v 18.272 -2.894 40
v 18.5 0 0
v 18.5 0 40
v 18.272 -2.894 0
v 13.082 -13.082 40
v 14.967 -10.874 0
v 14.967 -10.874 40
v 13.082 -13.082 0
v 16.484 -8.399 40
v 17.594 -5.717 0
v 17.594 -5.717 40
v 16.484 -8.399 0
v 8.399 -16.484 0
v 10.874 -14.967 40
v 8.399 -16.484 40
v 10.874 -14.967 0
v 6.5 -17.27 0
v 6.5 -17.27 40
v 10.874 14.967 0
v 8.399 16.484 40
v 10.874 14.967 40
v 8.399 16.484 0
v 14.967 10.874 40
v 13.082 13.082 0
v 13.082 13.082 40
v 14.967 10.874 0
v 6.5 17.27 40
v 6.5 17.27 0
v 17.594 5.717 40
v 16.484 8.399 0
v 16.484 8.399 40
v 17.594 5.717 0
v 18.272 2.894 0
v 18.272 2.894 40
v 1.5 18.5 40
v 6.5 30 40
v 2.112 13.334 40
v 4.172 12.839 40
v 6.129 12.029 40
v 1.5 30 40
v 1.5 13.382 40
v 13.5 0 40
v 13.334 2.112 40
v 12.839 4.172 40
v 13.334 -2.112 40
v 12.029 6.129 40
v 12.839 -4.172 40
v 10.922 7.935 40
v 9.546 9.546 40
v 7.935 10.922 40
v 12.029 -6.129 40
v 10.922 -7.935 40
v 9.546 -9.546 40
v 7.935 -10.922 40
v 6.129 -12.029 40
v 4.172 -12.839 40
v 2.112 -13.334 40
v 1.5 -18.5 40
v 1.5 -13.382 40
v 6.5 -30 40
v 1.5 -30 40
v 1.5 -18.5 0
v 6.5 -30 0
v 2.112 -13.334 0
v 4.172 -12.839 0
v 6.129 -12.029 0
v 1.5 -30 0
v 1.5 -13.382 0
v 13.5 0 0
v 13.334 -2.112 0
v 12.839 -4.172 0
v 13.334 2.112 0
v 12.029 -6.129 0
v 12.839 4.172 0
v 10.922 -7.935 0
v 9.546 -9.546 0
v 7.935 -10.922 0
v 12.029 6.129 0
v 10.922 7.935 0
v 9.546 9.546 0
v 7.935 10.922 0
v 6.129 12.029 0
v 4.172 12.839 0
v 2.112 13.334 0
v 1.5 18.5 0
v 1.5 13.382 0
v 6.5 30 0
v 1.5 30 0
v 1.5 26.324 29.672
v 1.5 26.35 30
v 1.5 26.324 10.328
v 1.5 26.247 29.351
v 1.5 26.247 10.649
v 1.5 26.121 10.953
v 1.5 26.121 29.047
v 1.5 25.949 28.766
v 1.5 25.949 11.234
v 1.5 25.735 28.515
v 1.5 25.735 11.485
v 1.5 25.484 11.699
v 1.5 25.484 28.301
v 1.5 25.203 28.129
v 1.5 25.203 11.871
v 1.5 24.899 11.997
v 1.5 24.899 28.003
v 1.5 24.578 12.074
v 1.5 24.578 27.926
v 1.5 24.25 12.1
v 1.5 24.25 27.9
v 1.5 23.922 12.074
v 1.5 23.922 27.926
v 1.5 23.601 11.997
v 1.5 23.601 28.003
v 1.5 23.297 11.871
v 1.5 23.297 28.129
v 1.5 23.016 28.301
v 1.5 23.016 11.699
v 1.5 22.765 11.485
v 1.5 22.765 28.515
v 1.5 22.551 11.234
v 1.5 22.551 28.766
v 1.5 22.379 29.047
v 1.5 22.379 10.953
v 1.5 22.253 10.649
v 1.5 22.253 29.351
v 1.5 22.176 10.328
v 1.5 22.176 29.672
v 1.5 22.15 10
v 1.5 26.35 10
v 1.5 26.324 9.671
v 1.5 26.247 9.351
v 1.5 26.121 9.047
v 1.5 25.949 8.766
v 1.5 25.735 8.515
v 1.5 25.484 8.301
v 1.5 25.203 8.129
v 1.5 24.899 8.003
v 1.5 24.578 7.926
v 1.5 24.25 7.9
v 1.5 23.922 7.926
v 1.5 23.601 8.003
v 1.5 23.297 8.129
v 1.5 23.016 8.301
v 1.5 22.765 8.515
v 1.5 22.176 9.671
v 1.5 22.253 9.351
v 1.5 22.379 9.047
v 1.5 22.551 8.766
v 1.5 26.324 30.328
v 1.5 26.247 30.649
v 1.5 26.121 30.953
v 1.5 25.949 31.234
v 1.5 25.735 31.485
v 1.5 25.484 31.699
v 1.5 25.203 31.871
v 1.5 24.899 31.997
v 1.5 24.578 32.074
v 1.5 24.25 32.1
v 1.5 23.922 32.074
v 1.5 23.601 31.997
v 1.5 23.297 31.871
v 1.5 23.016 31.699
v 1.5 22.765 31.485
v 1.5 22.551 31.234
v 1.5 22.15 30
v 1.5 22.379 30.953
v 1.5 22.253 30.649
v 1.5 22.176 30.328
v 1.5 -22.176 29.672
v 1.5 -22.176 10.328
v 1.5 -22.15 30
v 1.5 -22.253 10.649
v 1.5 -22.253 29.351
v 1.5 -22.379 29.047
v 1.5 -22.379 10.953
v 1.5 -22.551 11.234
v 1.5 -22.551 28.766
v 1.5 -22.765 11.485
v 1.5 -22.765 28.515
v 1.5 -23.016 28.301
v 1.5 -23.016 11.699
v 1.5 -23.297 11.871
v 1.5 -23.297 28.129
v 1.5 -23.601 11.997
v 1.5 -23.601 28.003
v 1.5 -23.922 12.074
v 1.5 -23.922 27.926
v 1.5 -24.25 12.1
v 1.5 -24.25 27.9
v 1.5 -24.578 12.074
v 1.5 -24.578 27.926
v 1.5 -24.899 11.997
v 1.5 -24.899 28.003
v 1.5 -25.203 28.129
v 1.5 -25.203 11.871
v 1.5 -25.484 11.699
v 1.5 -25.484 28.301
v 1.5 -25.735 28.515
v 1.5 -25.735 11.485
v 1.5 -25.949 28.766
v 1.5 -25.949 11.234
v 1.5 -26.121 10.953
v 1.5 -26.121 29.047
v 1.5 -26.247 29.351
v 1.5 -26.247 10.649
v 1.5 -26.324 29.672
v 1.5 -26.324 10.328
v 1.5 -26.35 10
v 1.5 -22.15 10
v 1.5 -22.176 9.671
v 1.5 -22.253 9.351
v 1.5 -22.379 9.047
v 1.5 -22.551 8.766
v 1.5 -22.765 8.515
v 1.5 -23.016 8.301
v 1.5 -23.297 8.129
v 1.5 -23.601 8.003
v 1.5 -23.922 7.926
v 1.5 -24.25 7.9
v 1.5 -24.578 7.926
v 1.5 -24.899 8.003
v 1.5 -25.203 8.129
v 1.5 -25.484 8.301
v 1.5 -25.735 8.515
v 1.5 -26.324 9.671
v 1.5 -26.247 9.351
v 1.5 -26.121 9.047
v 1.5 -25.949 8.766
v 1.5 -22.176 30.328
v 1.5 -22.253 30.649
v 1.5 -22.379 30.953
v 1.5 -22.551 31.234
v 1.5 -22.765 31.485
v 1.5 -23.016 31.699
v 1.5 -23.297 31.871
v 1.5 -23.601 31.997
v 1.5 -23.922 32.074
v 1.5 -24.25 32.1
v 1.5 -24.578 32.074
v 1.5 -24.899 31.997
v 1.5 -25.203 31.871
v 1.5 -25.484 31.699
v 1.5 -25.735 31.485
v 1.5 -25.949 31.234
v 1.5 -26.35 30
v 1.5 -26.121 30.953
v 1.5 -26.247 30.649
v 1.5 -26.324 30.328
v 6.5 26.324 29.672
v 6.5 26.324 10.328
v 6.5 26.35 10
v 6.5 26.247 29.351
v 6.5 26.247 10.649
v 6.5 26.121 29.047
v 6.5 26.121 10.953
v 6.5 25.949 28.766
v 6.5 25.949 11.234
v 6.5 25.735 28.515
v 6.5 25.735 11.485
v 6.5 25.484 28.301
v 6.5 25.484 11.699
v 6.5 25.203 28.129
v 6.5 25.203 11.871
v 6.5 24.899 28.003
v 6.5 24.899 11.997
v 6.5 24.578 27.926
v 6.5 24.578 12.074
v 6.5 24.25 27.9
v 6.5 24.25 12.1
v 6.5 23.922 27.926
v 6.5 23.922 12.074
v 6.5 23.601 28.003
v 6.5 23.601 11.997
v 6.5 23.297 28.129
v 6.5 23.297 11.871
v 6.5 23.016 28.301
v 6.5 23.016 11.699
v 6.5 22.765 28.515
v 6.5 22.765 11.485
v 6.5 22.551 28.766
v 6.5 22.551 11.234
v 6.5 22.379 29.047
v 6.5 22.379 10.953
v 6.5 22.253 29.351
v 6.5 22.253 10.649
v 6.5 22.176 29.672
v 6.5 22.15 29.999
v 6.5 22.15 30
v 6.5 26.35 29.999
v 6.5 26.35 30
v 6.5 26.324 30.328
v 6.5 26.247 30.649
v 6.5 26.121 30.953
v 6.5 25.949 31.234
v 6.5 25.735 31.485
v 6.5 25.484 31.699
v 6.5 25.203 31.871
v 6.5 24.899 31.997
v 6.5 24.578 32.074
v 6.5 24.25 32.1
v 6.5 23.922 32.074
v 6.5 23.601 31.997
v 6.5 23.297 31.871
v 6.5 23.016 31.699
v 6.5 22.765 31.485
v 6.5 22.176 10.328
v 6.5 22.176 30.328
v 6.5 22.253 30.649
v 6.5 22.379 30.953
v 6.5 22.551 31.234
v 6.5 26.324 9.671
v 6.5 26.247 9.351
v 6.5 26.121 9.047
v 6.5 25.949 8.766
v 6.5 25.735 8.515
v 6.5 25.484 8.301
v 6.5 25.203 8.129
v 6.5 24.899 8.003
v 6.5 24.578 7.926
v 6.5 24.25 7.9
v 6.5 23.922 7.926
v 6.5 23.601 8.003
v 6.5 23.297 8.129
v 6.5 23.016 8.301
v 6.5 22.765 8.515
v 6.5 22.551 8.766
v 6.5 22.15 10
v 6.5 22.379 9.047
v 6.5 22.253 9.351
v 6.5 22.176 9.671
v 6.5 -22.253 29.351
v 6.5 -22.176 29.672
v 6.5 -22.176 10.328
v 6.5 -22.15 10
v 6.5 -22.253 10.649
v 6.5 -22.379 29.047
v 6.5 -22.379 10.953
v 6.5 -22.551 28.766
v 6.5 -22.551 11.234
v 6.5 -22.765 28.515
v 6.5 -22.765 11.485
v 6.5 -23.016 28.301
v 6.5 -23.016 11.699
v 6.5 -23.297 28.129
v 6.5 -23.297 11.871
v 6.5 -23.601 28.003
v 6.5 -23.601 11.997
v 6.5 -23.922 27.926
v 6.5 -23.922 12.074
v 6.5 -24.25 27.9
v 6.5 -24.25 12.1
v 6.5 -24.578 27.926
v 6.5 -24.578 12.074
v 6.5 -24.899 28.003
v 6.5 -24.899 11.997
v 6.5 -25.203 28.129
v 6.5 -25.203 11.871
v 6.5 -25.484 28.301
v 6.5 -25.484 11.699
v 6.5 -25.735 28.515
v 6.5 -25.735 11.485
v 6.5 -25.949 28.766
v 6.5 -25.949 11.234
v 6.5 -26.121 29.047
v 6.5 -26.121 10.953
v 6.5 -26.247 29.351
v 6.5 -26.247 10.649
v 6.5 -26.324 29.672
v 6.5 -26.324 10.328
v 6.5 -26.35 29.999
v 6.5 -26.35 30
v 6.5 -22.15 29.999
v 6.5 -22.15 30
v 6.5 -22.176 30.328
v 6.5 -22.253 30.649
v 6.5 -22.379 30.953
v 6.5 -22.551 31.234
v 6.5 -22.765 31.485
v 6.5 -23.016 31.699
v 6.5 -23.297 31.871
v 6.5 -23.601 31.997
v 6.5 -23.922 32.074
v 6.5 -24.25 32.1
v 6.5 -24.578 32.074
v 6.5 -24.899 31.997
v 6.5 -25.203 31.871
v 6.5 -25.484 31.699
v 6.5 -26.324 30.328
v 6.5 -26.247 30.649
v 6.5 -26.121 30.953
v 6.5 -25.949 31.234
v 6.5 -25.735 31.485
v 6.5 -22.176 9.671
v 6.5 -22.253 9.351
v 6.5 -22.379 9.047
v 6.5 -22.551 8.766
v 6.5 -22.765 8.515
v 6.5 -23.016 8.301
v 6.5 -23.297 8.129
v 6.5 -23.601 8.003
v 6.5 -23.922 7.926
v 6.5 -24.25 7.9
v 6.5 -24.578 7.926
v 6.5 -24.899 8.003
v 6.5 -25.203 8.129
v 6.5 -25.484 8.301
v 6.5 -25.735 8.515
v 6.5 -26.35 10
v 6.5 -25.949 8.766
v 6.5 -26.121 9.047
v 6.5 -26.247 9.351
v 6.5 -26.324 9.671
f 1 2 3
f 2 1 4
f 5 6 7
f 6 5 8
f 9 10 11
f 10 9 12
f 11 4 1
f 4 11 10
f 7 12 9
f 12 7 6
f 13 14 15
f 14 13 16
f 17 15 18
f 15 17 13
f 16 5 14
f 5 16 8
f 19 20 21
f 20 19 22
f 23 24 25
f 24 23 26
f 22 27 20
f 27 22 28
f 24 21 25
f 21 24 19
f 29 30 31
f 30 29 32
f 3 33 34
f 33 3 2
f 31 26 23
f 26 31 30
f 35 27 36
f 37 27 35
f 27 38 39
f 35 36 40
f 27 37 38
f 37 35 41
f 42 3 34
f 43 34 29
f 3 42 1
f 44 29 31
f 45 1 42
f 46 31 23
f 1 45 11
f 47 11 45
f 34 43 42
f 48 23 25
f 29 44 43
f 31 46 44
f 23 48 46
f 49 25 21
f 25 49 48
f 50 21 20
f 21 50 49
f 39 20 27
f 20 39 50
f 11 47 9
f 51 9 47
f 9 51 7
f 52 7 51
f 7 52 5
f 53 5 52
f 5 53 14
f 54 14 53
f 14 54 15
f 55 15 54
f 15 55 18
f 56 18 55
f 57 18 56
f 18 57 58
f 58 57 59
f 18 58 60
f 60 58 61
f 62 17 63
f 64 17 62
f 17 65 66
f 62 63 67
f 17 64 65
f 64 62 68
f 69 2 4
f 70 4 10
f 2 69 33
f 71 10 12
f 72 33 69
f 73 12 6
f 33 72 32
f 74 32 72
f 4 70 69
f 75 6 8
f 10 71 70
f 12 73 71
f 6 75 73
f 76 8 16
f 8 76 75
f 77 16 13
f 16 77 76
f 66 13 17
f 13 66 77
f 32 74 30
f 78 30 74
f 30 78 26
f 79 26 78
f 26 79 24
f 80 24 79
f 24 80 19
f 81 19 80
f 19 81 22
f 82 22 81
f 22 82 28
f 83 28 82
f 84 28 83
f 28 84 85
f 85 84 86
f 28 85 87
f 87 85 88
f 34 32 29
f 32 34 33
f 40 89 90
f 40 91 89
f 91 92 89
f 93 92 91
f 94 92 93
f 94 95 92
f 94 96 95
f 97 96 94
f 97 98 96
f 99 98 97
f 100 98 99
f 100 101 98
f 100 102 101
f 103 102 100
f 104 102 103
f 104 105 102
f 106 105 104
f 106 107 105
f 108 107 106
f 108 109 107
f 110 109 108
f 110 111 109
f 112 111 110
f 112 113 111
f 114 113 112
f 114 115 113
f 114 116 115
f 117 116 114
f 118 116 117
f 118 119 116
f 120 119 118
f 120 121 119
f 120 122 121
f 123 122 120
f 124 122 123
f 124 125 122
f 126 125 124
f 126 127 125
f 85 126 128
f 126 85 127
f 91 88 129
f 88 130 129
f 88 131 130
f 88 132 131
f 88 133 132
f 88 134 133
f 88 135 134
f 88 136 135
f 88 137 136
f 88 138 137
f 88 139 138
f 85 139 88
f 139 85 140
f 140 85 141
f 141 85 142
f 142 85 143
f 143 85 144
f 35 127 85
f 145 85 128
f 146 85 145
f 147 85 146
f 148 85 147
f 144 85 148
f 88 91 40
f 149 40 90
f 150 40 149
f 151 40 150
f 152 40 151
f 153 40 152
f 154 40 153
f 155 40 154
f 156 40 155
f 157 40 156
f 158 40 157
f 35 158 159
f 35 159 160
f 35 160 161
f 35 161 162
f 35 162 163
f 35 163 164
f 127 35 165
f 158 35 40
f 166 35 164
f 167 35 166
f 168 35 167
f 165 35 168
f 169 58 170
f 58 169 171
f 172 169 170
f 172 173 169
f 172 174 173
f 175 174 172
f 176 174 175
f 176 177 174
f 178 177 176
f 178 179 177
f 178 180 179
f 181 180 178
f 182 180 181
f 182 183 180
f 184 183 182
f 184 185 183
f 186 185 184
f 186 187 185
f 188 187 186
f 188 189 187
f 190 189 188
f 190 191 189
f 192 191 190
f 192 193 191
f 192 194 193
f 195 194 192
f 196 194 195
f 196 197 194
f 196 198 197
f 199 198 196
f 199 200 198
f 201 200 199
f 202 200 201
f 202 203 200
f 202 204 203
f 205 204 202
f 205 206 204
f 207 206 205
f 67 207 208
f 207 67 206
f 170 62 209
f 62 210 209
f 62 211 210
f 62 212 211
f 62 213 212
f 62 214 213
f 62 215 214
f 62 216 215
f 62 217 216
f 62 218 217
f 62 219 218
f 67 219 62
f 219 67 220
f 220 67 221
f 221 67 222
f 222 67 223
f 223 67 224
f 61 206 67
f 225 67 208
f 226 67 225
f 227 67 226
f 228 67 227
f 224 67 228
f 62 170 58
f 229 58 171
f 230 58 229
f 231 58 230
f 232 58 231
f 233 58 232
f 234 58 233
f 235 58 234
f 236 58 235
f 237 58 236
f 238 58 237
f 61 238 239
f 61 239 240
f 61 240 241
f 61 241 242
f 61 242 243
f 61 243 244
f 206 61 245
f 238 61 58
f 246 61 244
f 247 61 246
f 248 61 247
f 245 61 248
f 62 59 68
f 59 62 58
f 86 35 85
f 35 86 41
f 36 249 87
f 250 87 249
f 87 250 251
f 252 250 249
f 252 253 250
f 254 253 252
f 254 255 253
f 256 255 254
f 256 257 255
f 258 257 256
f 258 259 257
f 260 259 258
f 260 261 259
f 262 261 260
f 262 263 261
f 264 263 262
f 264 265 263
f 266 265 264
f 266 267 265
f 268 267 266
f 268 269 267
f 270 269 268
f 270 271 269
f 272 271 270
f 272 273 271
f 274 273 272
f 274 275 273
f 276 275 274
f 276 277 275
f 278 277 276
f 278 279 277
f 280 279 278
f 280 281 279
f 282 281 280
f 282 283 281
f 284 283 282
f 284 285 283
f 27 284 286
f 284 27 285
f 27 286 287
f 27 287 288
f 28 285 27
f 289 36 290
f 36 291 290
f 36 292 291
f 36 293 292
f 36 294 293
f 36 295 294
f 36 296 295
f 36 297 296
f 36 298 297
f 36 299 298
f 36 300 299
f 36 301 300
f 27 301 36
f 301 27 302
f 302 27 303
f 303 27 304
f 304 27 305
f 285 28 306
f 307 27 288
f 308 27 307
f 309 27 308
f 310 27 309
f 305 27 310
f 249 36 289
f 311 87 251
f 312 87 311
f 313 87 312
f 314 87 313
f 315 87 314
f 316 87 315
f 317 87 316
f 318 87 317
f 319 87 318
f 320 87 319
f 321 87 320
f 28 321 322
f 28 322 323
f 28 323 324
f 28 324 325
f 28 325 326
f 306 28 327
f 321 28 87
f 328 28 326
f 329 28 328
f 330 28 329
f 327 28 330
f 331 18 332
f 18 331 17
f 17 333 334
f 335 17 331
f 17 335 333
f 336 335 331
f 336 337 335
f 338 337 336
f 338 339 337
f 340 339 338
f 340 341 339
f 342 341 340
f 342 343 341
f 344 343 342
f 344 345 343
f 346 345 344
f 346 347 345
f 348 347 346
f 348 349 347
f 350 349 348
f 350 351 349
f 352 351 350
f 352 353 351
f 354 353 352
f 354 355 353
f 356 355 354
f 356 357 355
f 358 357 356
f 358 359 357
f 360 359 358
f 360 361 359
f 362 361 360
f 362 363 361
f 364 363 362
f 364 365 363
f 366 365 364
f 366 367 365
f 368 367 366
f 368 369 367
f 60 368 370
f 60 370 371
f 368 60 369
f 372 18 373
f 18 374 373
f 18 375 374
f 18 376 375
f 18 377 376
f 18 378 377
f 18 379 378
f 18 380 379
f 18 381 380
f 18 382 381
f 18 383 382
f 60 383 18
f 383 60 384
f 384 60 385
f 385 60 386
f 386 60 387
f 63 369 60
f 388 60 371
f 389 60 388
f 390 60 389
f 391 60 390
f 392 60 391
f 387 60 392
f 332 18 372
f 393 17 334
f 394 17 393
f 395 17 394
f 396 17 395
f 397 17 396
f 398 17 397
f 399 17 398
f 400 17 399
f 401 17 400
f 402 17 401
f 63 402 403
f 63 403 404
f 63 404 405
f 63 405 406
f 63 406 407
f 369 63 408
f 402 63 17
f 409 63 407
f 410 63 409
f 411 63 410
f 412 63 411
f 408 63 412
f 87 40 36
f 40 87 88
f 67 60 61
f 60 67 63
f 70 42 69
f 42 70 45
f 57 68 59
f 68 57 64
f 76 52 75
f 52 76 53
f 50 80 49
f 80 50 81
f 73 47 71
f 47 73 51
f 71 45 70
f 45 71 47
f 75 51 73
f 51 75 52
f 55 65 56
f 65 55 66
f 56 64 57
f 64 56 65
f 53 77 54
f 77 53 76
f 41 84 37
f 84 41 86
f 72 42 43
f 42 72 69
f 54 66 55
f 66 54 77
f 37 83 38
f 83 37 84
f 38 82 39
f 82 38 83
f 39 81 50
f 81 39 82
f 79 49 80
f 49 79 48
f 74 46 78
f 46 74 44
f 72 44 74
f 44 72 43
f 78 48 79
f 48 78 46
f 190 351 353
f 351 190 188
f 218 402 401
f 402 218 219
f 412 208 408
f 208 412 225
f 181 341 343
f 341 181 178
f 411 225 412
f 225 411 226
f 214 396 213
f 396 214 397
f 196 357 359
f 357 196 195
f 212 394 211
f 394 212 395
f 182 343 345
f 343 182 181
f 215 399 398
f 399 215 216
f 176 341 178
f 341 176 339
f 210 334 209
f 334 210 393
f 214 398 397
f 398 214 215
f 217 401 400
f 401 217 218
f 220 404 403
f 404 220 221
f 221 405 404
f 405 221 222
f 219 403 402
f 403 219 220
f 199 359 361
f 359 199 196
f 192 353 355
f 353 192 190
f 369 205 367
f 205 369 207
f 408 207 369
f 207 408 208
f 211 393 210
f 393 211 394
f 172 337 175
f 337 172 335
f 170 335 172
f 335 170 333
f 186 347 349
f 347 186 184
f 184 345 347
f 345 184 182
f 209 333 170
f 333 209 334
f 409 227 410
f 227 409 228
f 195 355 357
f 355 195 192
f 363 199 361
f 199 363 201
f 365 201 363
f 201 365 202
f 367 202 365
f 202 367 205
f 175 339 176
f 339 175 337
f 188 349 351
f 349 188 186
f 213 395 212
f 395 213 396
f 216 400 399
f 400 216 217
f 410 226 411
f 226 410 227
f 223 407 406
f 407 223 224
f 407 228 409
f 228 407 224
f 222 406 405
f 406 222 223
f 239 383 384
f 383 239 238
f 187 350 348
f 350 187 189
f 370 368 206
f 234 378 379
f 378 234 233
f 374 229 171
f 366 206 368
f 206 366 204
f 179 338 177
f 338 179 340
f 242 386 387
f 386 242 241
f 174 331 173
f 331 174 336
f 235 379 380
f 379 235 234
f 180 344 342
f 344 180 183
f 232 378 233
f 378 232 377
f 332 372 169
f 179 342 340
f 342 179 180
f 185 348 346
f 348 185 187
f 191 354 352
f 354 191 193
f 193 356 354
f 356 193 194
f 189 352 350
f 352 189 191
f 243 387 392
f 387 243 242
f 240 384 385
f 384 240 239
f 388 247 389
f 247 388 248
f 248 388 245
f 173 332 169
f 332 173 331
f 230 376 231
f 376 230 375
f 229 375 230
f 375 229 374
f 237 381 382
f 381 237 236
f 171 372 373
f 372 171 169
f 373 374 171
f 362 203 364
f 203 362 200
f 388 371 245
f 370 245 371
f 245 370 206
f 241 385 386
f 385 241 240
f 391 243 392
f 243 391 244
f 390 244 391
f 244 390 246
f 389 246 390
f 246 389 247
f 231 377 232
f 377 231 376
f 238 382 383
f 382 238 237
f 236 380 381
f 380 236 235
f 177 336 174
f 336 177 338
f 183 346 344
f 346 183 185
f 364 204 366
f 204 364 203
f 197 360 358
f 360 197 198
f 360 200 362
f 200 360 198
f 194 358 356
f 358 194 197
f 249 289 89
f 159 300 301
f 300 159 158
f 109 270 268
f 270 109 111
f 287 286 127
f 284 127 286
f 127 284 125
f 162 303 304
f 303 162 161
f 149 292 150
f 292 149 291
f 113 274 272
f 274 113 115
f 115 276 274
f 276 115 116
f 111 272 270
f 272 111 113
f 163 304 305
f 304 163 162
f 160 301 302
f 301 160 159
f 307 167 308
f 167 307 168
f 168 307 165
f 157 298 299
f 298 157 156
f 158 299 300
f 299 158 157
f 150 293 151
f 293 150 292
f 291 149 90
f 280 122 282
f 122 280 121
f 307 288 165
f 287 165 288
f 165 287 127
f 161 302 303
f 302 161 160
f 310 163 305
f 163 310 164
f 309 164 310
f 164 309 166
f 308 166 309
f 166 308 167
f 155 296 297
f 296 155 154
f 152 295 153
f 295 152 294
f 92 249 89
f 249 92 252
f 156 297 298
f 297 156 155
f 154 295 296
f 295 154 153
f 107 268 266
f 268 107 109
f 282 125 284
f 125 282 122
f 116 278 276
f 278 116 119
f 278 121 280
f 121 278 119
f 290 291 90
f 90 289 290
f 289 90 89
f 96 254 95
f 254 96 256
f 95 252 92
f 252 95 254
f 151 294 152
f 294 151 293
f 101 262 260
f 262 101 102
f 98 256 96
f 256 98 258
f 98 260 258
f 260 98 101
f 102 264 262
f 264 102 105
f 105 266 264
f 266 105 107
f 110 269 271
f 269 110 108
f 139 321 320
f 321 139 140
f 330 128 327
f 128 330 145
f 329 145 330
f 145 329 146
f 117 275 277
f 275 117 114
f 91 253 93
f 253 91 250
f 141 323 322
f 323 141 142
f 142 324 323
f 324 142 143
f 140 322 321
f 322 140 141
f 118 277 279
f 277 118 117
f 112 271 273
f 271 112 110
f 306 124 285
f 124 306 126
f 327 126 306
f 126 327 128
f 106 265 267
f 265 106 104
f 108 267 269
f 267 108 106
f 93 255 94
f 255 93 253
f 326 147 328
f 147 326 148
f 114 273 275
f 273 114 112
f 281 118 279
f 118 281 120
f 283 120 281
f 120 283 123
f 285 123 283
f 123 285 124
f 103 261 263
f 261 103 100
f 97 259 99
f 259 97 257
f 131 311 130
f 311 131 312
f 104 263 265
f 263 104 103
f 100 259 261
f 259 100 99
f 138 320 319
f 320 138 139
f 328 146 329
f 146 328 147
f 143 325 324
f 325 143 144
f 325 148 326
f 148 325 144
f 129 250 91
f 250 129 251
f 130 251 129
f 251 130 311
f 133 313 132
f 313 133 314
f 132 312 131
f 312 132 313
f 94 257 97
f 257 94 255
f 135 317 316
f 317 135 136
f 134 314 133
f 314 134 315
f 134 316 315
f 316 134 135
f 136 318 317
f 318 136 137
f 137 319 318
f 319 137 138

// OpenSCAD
// file: ../SRC/AWSBOX01A_D02_2.scad
$fn=40; // model faces resolution.


//WINDGAUGE02A_D01 //uchyt velky
D01_material_pod_zavitem=5;
D01_material_za_zavitem=3;
D01_material_pred_zavitem=2;
D01_delka_tyce=60;
D01_sirka_tyce=10;

//WINDGAUGE02A_D02 //uchyt na sloup
D02_sila_materialu=5;
D02_vyska_uchytky=40;
D02_prumer_obruby=27; //3/4 trubka
D02_delka_celeho_uchytu=60;
D02_dotahova_vzdalenost=1.5;
D02_prumer_uchytneho_sroubu=4.2;
D02_sirka_matky=9.2; //pro M4
D02_vyska_matky=3;


//Drzak na sloup - cast bez drzaku anemometru
module WINDGAUGE02A_D02(D02_sila_materialu){
	
difference()
    {
    union()
        {
        //základní válec
        cylinder(h=D02_vyska_uchytky,r=(D02_prumer_obruby+2*D02_sila_materialu)/2,center=true);
		//úchytové plošky		
        translate([D02_dotahova_vzdalenost+D02_sila_materialu/2,0,0]){cube([D02_sila_materialu,D02_delka_celeho_uchytu,D02_vyska_uchytky],center=true);}
		}
    
    //válec na odečet
    cylinder(h=D02_vyska_uchytky+0.01,r=D02_prumer_obruby/2,center=true);     
	        
    //kvádr na odecet
	translate([D02_dotahova_vzdalenost-(D02_prumer_obruby+2*D02_sila_materialu)/2,0,0]){cube([D02_prumer_obruby+2*D02_sila_materialu,D02_prumer_obruby+2*D02_sila_materialu,D02_vyska_uchytky+0.01],center=true);}
		
	//otvory na sroub
	translate([D02_dotahova_vzdalenost,(D02_delka_celeho_uchytu/2-D02_prumer_obruby/2-D02_sila_materialu)/2+D02_prumer_obruby/2+D02_sila_materialu,D02_vyska_uchytky/4]){rotate([0,90,0]){cylinder(h=D02_sila_materialu+0.01,r=D02_prumer_uchytneho_sroubu/2);}}
    
     //drzak matky
    translate([D02_dotahova_vzdalenost+D02_sila_materialu-D02_vyska_matky,(D02_delka_celeho_uchytu/2-D02_prumer_obruby/2-D02_sila_materialu)/2+D02_prumer_obruby/2+D02_sila_materialu,D02_vyska_uchytky/4]){rotate([0,90,0]){ cylinder (h = D02_vyska_matky+0.01, r= (D02_sirka_matky+0.2)/2, $fn=6);}}
   
     
        
    translate([D02_dotahova_vzdalenost,(D02_delka_celeho_uchytu/2-D02_prumer_obruby/2-D02_sila_materialu)/2+D02_prumer_obruby/2+D02_sila_materialu,-D02_vyska_uchytky/4]){rotate([0,90,0]){cylinder(h=D02_sila_materialu+0.01,r=D02_prumer_uchytneho_sroubu/2);}}
    
     //drzak matky
    translate([D02_dotahova_vzdalenost+D02_sila_materialu-D02_vyska_matky,(D02_delka_celeho_uchytu/2-D02_prumer_obruby/2-D02_sila_materialu)/2+D02_prumer_obruby/2+D02_sila_materialu,-D02_vyska_uchytky/4]){rotate([0,90,0]){ cylinder (h = D02_vyska_matky+0.01, r= (D02_sirka_matky+0.2)/2, $fn=6);}}
        
	translate([D02_dotahova_vzdalenost,-((D02_delka_celeho_uchytu/2-D02_prumer_obruby/2-D02_sila_materialu)/2+D02_prumer_obruby/2+D02_sila_materialu),-D02_vyska_uchytky/4]){rotate([0,90,0]){cylinder(h=D02_sila_materialu+0.01,r=D02_prumer_uchytneho_sroubu/2);}}
    
     //drzak matky
    translate([D02_dotahova_vzdalenost+D02_sila_materialu-D02_vyska_matky,-((D02_delka_celeho_uchytu/2-D02_prumer_obruby/2-D02_sila_materialu)/2+D02_prumer_obruby/2+D02_sila_materialu),-D02_vyska_uchytky/4]){rotate([0,90,0]){ cylinder (h = D02_vyska_matky+0.01, r= (D02_sirka_matky+0.2)/2, $fn=6);}}

    translate([D02_dotahova_vzdalenost,-((D02_delka_celeho_uchytu/2-D02_prumer_obruby/2-D02_sila_materialu)/2+D02_prumer_obruby/2+D02_sila_materialu),D02_vyska_uchytky/4]){rotate([0,90,0]){cylinder(h=D02_sila_materialu+0.01,r=D02_prumer_uchytneho_sroubu/2);}}	
    
     //drzak matky
    translate([D02_dotahova_vzdalenost+D02_sila_materialu-D02_vyska_matky,-((D02_delka_celeho_uchytu/2-D02_prumer_obruby/2-D02_sila_materialu)/2+D02_prumer_obruby/2+D02_sila_materialu),D02_vyska_uchytky/4]){rotate([0,90,0]){ cylinder (h = D02_vyska_matky+0.01, r= (D02_sirka_matky+0.2)/2, $fn=6);}}
	
    }
}

module WINDGAUGE02A_D02_2(){
	
difference()
    {
    union()
        {
        //základní válec
        cylinder(h=D02_vyska_uchytky,r=(D02_prumer_obruby+2*D02_sila_materialu)/2,center=true);
		//úchytové plošky		
        translate([D02_dotahova_vzdalenost+D02_sila_materialu/2,0,0]){cube([D02_sila_materialu,D02_delka_celeho_uchytu,D02_vyska_uchytky],center=true);}
		}
    
    //válec na odečet
    cylinder(h=D02_vyska_uchytky+0.01,r=D02_prumer_obruby/2,center=true);     
	        
    //kvádr na odecet
	translate([D02_dotahova_vzdalenost-(D02_prumer_obruby+2*D02_sila_materialu)/2,0,0]){cube([D02_prumer_obruby+2*D02_sila_materialu,D02_prumer_obruby+2*D02_sila_materialu,D02_vyska_uchytky+0.01],center=true);}
		
	//otvory na sroub
	translate([D02_dotahova_vzdalenost,(D02_delka_celeho_uchytu/2-D02_prumer_obruby/2-D02_sila_materialu)/2+D02_prumer_obruby/2+D02_sila_materialu,D02_vyska_uchytky/4]){rotate([0,90,0]){cylinder(h=D02_sila_materialu+0.01,r=D02_prumer_uchytneho_sroubu/2);}}
    
    
   
     
        
    translate([D02_dotahova_vzdalenost,(D02_delka_celeho_uchytu/2-D02_prumer_obruby/2-D02_sila_materialu)/2+D02_prumer_obruby/2+D02_sila_materialu,-D02_vyska_uchytky/4]){rotate([0,90,0]){cylinder(h=D02_sila_materialu+0.01,r=D02_prumer_uchytneho_sroubu/2);}}
    
     
        
	translate([D02_dotahova_vzdalenost,-((D02_delka_celeho_uchytu/2-D02_prumer_obruby/2-D02_sila_materialu)/2+D02_prumer_obruby/2+D02_sila_materialu),-D02_vyska_uchytky/4]){rotate([0,90,0]){cylinder(h=D02_sila_materialu+0.01,r=D02_prumer_uchytneho_sroubu/2);}}
    
    

    translate([D02_dotahova_vzdalenost,-((D02_delka_celeho_uchytu/2-D02_prumer_obruby/2-D02_sila_materialu)/2+D02_prumer_obruby/2+D02_sila_materialu),D02_vyska_uchytky/4]){rotate([0,90,0]){cylinder(h=D02_sila_materialu+0.01,r=D02_prumer_uchytneho_sroubu/2);}}	
    
    
	
    }
}


//WINDGAUGE02A_D02();
// file: ../configuration.scad
$fn=40; // model faces resolution.

//OBECNE PARAMETRY 
//----------------------------------------------------------------
//----------------------------------------------------------------

//pro PLBASE
pocet_der1=11; //x 11
pocet_der2=6; //ovlivňuje výšku krabičky 6
radidus_hrany=5;
vzdalenost_der=10.16;
vzdalenost_od_okraje=vzdalenost_der/2;
prumer_sroubu=3.4;
tloustka_plbase=2;
prekryti_der=-2;

//WINDGAUGE02A_D02 //uchyt na sloup
D02_sila_materialu=5; //nefunguje
D02_vyska_uchytky=40;
D02_prumer_obruby=27; //3/4 trubka
D02_delka_celeho_uchytu=60;
D02_dotahova_vzdalenost=1.5;
D02_prumer_uchytneho_sroubu=4.2;
D02_sirka_matky=9.2; //pro M4
D02_vyska_matky=3;




D02_vyska_boxu_pod_plbase=6;
D02_vyska_boxu_nad_plbase=50;
D02_zapusteni_spodniho_krytu=10;
D02_sila_materialu=1.2;
D02_dolerance_na_zasunuti=0.8; //tolerance je pro obě strany

drzak_sroubu_hloubka=15;
drzak_sroubu_vyska=10;
matka_vyska=3;
// main file
$fn=100; // model faces resolution.
include <../configuration.scad>
use <../SRC/AWSBOX01A_D02_2.scad>

rotate([0, 0, 0])
            
 
translate([0,0,D02_vyska_uchytky/2])
        rotate([180,0,0])
     WINDGAUGE02A_D02_2(5);

            
